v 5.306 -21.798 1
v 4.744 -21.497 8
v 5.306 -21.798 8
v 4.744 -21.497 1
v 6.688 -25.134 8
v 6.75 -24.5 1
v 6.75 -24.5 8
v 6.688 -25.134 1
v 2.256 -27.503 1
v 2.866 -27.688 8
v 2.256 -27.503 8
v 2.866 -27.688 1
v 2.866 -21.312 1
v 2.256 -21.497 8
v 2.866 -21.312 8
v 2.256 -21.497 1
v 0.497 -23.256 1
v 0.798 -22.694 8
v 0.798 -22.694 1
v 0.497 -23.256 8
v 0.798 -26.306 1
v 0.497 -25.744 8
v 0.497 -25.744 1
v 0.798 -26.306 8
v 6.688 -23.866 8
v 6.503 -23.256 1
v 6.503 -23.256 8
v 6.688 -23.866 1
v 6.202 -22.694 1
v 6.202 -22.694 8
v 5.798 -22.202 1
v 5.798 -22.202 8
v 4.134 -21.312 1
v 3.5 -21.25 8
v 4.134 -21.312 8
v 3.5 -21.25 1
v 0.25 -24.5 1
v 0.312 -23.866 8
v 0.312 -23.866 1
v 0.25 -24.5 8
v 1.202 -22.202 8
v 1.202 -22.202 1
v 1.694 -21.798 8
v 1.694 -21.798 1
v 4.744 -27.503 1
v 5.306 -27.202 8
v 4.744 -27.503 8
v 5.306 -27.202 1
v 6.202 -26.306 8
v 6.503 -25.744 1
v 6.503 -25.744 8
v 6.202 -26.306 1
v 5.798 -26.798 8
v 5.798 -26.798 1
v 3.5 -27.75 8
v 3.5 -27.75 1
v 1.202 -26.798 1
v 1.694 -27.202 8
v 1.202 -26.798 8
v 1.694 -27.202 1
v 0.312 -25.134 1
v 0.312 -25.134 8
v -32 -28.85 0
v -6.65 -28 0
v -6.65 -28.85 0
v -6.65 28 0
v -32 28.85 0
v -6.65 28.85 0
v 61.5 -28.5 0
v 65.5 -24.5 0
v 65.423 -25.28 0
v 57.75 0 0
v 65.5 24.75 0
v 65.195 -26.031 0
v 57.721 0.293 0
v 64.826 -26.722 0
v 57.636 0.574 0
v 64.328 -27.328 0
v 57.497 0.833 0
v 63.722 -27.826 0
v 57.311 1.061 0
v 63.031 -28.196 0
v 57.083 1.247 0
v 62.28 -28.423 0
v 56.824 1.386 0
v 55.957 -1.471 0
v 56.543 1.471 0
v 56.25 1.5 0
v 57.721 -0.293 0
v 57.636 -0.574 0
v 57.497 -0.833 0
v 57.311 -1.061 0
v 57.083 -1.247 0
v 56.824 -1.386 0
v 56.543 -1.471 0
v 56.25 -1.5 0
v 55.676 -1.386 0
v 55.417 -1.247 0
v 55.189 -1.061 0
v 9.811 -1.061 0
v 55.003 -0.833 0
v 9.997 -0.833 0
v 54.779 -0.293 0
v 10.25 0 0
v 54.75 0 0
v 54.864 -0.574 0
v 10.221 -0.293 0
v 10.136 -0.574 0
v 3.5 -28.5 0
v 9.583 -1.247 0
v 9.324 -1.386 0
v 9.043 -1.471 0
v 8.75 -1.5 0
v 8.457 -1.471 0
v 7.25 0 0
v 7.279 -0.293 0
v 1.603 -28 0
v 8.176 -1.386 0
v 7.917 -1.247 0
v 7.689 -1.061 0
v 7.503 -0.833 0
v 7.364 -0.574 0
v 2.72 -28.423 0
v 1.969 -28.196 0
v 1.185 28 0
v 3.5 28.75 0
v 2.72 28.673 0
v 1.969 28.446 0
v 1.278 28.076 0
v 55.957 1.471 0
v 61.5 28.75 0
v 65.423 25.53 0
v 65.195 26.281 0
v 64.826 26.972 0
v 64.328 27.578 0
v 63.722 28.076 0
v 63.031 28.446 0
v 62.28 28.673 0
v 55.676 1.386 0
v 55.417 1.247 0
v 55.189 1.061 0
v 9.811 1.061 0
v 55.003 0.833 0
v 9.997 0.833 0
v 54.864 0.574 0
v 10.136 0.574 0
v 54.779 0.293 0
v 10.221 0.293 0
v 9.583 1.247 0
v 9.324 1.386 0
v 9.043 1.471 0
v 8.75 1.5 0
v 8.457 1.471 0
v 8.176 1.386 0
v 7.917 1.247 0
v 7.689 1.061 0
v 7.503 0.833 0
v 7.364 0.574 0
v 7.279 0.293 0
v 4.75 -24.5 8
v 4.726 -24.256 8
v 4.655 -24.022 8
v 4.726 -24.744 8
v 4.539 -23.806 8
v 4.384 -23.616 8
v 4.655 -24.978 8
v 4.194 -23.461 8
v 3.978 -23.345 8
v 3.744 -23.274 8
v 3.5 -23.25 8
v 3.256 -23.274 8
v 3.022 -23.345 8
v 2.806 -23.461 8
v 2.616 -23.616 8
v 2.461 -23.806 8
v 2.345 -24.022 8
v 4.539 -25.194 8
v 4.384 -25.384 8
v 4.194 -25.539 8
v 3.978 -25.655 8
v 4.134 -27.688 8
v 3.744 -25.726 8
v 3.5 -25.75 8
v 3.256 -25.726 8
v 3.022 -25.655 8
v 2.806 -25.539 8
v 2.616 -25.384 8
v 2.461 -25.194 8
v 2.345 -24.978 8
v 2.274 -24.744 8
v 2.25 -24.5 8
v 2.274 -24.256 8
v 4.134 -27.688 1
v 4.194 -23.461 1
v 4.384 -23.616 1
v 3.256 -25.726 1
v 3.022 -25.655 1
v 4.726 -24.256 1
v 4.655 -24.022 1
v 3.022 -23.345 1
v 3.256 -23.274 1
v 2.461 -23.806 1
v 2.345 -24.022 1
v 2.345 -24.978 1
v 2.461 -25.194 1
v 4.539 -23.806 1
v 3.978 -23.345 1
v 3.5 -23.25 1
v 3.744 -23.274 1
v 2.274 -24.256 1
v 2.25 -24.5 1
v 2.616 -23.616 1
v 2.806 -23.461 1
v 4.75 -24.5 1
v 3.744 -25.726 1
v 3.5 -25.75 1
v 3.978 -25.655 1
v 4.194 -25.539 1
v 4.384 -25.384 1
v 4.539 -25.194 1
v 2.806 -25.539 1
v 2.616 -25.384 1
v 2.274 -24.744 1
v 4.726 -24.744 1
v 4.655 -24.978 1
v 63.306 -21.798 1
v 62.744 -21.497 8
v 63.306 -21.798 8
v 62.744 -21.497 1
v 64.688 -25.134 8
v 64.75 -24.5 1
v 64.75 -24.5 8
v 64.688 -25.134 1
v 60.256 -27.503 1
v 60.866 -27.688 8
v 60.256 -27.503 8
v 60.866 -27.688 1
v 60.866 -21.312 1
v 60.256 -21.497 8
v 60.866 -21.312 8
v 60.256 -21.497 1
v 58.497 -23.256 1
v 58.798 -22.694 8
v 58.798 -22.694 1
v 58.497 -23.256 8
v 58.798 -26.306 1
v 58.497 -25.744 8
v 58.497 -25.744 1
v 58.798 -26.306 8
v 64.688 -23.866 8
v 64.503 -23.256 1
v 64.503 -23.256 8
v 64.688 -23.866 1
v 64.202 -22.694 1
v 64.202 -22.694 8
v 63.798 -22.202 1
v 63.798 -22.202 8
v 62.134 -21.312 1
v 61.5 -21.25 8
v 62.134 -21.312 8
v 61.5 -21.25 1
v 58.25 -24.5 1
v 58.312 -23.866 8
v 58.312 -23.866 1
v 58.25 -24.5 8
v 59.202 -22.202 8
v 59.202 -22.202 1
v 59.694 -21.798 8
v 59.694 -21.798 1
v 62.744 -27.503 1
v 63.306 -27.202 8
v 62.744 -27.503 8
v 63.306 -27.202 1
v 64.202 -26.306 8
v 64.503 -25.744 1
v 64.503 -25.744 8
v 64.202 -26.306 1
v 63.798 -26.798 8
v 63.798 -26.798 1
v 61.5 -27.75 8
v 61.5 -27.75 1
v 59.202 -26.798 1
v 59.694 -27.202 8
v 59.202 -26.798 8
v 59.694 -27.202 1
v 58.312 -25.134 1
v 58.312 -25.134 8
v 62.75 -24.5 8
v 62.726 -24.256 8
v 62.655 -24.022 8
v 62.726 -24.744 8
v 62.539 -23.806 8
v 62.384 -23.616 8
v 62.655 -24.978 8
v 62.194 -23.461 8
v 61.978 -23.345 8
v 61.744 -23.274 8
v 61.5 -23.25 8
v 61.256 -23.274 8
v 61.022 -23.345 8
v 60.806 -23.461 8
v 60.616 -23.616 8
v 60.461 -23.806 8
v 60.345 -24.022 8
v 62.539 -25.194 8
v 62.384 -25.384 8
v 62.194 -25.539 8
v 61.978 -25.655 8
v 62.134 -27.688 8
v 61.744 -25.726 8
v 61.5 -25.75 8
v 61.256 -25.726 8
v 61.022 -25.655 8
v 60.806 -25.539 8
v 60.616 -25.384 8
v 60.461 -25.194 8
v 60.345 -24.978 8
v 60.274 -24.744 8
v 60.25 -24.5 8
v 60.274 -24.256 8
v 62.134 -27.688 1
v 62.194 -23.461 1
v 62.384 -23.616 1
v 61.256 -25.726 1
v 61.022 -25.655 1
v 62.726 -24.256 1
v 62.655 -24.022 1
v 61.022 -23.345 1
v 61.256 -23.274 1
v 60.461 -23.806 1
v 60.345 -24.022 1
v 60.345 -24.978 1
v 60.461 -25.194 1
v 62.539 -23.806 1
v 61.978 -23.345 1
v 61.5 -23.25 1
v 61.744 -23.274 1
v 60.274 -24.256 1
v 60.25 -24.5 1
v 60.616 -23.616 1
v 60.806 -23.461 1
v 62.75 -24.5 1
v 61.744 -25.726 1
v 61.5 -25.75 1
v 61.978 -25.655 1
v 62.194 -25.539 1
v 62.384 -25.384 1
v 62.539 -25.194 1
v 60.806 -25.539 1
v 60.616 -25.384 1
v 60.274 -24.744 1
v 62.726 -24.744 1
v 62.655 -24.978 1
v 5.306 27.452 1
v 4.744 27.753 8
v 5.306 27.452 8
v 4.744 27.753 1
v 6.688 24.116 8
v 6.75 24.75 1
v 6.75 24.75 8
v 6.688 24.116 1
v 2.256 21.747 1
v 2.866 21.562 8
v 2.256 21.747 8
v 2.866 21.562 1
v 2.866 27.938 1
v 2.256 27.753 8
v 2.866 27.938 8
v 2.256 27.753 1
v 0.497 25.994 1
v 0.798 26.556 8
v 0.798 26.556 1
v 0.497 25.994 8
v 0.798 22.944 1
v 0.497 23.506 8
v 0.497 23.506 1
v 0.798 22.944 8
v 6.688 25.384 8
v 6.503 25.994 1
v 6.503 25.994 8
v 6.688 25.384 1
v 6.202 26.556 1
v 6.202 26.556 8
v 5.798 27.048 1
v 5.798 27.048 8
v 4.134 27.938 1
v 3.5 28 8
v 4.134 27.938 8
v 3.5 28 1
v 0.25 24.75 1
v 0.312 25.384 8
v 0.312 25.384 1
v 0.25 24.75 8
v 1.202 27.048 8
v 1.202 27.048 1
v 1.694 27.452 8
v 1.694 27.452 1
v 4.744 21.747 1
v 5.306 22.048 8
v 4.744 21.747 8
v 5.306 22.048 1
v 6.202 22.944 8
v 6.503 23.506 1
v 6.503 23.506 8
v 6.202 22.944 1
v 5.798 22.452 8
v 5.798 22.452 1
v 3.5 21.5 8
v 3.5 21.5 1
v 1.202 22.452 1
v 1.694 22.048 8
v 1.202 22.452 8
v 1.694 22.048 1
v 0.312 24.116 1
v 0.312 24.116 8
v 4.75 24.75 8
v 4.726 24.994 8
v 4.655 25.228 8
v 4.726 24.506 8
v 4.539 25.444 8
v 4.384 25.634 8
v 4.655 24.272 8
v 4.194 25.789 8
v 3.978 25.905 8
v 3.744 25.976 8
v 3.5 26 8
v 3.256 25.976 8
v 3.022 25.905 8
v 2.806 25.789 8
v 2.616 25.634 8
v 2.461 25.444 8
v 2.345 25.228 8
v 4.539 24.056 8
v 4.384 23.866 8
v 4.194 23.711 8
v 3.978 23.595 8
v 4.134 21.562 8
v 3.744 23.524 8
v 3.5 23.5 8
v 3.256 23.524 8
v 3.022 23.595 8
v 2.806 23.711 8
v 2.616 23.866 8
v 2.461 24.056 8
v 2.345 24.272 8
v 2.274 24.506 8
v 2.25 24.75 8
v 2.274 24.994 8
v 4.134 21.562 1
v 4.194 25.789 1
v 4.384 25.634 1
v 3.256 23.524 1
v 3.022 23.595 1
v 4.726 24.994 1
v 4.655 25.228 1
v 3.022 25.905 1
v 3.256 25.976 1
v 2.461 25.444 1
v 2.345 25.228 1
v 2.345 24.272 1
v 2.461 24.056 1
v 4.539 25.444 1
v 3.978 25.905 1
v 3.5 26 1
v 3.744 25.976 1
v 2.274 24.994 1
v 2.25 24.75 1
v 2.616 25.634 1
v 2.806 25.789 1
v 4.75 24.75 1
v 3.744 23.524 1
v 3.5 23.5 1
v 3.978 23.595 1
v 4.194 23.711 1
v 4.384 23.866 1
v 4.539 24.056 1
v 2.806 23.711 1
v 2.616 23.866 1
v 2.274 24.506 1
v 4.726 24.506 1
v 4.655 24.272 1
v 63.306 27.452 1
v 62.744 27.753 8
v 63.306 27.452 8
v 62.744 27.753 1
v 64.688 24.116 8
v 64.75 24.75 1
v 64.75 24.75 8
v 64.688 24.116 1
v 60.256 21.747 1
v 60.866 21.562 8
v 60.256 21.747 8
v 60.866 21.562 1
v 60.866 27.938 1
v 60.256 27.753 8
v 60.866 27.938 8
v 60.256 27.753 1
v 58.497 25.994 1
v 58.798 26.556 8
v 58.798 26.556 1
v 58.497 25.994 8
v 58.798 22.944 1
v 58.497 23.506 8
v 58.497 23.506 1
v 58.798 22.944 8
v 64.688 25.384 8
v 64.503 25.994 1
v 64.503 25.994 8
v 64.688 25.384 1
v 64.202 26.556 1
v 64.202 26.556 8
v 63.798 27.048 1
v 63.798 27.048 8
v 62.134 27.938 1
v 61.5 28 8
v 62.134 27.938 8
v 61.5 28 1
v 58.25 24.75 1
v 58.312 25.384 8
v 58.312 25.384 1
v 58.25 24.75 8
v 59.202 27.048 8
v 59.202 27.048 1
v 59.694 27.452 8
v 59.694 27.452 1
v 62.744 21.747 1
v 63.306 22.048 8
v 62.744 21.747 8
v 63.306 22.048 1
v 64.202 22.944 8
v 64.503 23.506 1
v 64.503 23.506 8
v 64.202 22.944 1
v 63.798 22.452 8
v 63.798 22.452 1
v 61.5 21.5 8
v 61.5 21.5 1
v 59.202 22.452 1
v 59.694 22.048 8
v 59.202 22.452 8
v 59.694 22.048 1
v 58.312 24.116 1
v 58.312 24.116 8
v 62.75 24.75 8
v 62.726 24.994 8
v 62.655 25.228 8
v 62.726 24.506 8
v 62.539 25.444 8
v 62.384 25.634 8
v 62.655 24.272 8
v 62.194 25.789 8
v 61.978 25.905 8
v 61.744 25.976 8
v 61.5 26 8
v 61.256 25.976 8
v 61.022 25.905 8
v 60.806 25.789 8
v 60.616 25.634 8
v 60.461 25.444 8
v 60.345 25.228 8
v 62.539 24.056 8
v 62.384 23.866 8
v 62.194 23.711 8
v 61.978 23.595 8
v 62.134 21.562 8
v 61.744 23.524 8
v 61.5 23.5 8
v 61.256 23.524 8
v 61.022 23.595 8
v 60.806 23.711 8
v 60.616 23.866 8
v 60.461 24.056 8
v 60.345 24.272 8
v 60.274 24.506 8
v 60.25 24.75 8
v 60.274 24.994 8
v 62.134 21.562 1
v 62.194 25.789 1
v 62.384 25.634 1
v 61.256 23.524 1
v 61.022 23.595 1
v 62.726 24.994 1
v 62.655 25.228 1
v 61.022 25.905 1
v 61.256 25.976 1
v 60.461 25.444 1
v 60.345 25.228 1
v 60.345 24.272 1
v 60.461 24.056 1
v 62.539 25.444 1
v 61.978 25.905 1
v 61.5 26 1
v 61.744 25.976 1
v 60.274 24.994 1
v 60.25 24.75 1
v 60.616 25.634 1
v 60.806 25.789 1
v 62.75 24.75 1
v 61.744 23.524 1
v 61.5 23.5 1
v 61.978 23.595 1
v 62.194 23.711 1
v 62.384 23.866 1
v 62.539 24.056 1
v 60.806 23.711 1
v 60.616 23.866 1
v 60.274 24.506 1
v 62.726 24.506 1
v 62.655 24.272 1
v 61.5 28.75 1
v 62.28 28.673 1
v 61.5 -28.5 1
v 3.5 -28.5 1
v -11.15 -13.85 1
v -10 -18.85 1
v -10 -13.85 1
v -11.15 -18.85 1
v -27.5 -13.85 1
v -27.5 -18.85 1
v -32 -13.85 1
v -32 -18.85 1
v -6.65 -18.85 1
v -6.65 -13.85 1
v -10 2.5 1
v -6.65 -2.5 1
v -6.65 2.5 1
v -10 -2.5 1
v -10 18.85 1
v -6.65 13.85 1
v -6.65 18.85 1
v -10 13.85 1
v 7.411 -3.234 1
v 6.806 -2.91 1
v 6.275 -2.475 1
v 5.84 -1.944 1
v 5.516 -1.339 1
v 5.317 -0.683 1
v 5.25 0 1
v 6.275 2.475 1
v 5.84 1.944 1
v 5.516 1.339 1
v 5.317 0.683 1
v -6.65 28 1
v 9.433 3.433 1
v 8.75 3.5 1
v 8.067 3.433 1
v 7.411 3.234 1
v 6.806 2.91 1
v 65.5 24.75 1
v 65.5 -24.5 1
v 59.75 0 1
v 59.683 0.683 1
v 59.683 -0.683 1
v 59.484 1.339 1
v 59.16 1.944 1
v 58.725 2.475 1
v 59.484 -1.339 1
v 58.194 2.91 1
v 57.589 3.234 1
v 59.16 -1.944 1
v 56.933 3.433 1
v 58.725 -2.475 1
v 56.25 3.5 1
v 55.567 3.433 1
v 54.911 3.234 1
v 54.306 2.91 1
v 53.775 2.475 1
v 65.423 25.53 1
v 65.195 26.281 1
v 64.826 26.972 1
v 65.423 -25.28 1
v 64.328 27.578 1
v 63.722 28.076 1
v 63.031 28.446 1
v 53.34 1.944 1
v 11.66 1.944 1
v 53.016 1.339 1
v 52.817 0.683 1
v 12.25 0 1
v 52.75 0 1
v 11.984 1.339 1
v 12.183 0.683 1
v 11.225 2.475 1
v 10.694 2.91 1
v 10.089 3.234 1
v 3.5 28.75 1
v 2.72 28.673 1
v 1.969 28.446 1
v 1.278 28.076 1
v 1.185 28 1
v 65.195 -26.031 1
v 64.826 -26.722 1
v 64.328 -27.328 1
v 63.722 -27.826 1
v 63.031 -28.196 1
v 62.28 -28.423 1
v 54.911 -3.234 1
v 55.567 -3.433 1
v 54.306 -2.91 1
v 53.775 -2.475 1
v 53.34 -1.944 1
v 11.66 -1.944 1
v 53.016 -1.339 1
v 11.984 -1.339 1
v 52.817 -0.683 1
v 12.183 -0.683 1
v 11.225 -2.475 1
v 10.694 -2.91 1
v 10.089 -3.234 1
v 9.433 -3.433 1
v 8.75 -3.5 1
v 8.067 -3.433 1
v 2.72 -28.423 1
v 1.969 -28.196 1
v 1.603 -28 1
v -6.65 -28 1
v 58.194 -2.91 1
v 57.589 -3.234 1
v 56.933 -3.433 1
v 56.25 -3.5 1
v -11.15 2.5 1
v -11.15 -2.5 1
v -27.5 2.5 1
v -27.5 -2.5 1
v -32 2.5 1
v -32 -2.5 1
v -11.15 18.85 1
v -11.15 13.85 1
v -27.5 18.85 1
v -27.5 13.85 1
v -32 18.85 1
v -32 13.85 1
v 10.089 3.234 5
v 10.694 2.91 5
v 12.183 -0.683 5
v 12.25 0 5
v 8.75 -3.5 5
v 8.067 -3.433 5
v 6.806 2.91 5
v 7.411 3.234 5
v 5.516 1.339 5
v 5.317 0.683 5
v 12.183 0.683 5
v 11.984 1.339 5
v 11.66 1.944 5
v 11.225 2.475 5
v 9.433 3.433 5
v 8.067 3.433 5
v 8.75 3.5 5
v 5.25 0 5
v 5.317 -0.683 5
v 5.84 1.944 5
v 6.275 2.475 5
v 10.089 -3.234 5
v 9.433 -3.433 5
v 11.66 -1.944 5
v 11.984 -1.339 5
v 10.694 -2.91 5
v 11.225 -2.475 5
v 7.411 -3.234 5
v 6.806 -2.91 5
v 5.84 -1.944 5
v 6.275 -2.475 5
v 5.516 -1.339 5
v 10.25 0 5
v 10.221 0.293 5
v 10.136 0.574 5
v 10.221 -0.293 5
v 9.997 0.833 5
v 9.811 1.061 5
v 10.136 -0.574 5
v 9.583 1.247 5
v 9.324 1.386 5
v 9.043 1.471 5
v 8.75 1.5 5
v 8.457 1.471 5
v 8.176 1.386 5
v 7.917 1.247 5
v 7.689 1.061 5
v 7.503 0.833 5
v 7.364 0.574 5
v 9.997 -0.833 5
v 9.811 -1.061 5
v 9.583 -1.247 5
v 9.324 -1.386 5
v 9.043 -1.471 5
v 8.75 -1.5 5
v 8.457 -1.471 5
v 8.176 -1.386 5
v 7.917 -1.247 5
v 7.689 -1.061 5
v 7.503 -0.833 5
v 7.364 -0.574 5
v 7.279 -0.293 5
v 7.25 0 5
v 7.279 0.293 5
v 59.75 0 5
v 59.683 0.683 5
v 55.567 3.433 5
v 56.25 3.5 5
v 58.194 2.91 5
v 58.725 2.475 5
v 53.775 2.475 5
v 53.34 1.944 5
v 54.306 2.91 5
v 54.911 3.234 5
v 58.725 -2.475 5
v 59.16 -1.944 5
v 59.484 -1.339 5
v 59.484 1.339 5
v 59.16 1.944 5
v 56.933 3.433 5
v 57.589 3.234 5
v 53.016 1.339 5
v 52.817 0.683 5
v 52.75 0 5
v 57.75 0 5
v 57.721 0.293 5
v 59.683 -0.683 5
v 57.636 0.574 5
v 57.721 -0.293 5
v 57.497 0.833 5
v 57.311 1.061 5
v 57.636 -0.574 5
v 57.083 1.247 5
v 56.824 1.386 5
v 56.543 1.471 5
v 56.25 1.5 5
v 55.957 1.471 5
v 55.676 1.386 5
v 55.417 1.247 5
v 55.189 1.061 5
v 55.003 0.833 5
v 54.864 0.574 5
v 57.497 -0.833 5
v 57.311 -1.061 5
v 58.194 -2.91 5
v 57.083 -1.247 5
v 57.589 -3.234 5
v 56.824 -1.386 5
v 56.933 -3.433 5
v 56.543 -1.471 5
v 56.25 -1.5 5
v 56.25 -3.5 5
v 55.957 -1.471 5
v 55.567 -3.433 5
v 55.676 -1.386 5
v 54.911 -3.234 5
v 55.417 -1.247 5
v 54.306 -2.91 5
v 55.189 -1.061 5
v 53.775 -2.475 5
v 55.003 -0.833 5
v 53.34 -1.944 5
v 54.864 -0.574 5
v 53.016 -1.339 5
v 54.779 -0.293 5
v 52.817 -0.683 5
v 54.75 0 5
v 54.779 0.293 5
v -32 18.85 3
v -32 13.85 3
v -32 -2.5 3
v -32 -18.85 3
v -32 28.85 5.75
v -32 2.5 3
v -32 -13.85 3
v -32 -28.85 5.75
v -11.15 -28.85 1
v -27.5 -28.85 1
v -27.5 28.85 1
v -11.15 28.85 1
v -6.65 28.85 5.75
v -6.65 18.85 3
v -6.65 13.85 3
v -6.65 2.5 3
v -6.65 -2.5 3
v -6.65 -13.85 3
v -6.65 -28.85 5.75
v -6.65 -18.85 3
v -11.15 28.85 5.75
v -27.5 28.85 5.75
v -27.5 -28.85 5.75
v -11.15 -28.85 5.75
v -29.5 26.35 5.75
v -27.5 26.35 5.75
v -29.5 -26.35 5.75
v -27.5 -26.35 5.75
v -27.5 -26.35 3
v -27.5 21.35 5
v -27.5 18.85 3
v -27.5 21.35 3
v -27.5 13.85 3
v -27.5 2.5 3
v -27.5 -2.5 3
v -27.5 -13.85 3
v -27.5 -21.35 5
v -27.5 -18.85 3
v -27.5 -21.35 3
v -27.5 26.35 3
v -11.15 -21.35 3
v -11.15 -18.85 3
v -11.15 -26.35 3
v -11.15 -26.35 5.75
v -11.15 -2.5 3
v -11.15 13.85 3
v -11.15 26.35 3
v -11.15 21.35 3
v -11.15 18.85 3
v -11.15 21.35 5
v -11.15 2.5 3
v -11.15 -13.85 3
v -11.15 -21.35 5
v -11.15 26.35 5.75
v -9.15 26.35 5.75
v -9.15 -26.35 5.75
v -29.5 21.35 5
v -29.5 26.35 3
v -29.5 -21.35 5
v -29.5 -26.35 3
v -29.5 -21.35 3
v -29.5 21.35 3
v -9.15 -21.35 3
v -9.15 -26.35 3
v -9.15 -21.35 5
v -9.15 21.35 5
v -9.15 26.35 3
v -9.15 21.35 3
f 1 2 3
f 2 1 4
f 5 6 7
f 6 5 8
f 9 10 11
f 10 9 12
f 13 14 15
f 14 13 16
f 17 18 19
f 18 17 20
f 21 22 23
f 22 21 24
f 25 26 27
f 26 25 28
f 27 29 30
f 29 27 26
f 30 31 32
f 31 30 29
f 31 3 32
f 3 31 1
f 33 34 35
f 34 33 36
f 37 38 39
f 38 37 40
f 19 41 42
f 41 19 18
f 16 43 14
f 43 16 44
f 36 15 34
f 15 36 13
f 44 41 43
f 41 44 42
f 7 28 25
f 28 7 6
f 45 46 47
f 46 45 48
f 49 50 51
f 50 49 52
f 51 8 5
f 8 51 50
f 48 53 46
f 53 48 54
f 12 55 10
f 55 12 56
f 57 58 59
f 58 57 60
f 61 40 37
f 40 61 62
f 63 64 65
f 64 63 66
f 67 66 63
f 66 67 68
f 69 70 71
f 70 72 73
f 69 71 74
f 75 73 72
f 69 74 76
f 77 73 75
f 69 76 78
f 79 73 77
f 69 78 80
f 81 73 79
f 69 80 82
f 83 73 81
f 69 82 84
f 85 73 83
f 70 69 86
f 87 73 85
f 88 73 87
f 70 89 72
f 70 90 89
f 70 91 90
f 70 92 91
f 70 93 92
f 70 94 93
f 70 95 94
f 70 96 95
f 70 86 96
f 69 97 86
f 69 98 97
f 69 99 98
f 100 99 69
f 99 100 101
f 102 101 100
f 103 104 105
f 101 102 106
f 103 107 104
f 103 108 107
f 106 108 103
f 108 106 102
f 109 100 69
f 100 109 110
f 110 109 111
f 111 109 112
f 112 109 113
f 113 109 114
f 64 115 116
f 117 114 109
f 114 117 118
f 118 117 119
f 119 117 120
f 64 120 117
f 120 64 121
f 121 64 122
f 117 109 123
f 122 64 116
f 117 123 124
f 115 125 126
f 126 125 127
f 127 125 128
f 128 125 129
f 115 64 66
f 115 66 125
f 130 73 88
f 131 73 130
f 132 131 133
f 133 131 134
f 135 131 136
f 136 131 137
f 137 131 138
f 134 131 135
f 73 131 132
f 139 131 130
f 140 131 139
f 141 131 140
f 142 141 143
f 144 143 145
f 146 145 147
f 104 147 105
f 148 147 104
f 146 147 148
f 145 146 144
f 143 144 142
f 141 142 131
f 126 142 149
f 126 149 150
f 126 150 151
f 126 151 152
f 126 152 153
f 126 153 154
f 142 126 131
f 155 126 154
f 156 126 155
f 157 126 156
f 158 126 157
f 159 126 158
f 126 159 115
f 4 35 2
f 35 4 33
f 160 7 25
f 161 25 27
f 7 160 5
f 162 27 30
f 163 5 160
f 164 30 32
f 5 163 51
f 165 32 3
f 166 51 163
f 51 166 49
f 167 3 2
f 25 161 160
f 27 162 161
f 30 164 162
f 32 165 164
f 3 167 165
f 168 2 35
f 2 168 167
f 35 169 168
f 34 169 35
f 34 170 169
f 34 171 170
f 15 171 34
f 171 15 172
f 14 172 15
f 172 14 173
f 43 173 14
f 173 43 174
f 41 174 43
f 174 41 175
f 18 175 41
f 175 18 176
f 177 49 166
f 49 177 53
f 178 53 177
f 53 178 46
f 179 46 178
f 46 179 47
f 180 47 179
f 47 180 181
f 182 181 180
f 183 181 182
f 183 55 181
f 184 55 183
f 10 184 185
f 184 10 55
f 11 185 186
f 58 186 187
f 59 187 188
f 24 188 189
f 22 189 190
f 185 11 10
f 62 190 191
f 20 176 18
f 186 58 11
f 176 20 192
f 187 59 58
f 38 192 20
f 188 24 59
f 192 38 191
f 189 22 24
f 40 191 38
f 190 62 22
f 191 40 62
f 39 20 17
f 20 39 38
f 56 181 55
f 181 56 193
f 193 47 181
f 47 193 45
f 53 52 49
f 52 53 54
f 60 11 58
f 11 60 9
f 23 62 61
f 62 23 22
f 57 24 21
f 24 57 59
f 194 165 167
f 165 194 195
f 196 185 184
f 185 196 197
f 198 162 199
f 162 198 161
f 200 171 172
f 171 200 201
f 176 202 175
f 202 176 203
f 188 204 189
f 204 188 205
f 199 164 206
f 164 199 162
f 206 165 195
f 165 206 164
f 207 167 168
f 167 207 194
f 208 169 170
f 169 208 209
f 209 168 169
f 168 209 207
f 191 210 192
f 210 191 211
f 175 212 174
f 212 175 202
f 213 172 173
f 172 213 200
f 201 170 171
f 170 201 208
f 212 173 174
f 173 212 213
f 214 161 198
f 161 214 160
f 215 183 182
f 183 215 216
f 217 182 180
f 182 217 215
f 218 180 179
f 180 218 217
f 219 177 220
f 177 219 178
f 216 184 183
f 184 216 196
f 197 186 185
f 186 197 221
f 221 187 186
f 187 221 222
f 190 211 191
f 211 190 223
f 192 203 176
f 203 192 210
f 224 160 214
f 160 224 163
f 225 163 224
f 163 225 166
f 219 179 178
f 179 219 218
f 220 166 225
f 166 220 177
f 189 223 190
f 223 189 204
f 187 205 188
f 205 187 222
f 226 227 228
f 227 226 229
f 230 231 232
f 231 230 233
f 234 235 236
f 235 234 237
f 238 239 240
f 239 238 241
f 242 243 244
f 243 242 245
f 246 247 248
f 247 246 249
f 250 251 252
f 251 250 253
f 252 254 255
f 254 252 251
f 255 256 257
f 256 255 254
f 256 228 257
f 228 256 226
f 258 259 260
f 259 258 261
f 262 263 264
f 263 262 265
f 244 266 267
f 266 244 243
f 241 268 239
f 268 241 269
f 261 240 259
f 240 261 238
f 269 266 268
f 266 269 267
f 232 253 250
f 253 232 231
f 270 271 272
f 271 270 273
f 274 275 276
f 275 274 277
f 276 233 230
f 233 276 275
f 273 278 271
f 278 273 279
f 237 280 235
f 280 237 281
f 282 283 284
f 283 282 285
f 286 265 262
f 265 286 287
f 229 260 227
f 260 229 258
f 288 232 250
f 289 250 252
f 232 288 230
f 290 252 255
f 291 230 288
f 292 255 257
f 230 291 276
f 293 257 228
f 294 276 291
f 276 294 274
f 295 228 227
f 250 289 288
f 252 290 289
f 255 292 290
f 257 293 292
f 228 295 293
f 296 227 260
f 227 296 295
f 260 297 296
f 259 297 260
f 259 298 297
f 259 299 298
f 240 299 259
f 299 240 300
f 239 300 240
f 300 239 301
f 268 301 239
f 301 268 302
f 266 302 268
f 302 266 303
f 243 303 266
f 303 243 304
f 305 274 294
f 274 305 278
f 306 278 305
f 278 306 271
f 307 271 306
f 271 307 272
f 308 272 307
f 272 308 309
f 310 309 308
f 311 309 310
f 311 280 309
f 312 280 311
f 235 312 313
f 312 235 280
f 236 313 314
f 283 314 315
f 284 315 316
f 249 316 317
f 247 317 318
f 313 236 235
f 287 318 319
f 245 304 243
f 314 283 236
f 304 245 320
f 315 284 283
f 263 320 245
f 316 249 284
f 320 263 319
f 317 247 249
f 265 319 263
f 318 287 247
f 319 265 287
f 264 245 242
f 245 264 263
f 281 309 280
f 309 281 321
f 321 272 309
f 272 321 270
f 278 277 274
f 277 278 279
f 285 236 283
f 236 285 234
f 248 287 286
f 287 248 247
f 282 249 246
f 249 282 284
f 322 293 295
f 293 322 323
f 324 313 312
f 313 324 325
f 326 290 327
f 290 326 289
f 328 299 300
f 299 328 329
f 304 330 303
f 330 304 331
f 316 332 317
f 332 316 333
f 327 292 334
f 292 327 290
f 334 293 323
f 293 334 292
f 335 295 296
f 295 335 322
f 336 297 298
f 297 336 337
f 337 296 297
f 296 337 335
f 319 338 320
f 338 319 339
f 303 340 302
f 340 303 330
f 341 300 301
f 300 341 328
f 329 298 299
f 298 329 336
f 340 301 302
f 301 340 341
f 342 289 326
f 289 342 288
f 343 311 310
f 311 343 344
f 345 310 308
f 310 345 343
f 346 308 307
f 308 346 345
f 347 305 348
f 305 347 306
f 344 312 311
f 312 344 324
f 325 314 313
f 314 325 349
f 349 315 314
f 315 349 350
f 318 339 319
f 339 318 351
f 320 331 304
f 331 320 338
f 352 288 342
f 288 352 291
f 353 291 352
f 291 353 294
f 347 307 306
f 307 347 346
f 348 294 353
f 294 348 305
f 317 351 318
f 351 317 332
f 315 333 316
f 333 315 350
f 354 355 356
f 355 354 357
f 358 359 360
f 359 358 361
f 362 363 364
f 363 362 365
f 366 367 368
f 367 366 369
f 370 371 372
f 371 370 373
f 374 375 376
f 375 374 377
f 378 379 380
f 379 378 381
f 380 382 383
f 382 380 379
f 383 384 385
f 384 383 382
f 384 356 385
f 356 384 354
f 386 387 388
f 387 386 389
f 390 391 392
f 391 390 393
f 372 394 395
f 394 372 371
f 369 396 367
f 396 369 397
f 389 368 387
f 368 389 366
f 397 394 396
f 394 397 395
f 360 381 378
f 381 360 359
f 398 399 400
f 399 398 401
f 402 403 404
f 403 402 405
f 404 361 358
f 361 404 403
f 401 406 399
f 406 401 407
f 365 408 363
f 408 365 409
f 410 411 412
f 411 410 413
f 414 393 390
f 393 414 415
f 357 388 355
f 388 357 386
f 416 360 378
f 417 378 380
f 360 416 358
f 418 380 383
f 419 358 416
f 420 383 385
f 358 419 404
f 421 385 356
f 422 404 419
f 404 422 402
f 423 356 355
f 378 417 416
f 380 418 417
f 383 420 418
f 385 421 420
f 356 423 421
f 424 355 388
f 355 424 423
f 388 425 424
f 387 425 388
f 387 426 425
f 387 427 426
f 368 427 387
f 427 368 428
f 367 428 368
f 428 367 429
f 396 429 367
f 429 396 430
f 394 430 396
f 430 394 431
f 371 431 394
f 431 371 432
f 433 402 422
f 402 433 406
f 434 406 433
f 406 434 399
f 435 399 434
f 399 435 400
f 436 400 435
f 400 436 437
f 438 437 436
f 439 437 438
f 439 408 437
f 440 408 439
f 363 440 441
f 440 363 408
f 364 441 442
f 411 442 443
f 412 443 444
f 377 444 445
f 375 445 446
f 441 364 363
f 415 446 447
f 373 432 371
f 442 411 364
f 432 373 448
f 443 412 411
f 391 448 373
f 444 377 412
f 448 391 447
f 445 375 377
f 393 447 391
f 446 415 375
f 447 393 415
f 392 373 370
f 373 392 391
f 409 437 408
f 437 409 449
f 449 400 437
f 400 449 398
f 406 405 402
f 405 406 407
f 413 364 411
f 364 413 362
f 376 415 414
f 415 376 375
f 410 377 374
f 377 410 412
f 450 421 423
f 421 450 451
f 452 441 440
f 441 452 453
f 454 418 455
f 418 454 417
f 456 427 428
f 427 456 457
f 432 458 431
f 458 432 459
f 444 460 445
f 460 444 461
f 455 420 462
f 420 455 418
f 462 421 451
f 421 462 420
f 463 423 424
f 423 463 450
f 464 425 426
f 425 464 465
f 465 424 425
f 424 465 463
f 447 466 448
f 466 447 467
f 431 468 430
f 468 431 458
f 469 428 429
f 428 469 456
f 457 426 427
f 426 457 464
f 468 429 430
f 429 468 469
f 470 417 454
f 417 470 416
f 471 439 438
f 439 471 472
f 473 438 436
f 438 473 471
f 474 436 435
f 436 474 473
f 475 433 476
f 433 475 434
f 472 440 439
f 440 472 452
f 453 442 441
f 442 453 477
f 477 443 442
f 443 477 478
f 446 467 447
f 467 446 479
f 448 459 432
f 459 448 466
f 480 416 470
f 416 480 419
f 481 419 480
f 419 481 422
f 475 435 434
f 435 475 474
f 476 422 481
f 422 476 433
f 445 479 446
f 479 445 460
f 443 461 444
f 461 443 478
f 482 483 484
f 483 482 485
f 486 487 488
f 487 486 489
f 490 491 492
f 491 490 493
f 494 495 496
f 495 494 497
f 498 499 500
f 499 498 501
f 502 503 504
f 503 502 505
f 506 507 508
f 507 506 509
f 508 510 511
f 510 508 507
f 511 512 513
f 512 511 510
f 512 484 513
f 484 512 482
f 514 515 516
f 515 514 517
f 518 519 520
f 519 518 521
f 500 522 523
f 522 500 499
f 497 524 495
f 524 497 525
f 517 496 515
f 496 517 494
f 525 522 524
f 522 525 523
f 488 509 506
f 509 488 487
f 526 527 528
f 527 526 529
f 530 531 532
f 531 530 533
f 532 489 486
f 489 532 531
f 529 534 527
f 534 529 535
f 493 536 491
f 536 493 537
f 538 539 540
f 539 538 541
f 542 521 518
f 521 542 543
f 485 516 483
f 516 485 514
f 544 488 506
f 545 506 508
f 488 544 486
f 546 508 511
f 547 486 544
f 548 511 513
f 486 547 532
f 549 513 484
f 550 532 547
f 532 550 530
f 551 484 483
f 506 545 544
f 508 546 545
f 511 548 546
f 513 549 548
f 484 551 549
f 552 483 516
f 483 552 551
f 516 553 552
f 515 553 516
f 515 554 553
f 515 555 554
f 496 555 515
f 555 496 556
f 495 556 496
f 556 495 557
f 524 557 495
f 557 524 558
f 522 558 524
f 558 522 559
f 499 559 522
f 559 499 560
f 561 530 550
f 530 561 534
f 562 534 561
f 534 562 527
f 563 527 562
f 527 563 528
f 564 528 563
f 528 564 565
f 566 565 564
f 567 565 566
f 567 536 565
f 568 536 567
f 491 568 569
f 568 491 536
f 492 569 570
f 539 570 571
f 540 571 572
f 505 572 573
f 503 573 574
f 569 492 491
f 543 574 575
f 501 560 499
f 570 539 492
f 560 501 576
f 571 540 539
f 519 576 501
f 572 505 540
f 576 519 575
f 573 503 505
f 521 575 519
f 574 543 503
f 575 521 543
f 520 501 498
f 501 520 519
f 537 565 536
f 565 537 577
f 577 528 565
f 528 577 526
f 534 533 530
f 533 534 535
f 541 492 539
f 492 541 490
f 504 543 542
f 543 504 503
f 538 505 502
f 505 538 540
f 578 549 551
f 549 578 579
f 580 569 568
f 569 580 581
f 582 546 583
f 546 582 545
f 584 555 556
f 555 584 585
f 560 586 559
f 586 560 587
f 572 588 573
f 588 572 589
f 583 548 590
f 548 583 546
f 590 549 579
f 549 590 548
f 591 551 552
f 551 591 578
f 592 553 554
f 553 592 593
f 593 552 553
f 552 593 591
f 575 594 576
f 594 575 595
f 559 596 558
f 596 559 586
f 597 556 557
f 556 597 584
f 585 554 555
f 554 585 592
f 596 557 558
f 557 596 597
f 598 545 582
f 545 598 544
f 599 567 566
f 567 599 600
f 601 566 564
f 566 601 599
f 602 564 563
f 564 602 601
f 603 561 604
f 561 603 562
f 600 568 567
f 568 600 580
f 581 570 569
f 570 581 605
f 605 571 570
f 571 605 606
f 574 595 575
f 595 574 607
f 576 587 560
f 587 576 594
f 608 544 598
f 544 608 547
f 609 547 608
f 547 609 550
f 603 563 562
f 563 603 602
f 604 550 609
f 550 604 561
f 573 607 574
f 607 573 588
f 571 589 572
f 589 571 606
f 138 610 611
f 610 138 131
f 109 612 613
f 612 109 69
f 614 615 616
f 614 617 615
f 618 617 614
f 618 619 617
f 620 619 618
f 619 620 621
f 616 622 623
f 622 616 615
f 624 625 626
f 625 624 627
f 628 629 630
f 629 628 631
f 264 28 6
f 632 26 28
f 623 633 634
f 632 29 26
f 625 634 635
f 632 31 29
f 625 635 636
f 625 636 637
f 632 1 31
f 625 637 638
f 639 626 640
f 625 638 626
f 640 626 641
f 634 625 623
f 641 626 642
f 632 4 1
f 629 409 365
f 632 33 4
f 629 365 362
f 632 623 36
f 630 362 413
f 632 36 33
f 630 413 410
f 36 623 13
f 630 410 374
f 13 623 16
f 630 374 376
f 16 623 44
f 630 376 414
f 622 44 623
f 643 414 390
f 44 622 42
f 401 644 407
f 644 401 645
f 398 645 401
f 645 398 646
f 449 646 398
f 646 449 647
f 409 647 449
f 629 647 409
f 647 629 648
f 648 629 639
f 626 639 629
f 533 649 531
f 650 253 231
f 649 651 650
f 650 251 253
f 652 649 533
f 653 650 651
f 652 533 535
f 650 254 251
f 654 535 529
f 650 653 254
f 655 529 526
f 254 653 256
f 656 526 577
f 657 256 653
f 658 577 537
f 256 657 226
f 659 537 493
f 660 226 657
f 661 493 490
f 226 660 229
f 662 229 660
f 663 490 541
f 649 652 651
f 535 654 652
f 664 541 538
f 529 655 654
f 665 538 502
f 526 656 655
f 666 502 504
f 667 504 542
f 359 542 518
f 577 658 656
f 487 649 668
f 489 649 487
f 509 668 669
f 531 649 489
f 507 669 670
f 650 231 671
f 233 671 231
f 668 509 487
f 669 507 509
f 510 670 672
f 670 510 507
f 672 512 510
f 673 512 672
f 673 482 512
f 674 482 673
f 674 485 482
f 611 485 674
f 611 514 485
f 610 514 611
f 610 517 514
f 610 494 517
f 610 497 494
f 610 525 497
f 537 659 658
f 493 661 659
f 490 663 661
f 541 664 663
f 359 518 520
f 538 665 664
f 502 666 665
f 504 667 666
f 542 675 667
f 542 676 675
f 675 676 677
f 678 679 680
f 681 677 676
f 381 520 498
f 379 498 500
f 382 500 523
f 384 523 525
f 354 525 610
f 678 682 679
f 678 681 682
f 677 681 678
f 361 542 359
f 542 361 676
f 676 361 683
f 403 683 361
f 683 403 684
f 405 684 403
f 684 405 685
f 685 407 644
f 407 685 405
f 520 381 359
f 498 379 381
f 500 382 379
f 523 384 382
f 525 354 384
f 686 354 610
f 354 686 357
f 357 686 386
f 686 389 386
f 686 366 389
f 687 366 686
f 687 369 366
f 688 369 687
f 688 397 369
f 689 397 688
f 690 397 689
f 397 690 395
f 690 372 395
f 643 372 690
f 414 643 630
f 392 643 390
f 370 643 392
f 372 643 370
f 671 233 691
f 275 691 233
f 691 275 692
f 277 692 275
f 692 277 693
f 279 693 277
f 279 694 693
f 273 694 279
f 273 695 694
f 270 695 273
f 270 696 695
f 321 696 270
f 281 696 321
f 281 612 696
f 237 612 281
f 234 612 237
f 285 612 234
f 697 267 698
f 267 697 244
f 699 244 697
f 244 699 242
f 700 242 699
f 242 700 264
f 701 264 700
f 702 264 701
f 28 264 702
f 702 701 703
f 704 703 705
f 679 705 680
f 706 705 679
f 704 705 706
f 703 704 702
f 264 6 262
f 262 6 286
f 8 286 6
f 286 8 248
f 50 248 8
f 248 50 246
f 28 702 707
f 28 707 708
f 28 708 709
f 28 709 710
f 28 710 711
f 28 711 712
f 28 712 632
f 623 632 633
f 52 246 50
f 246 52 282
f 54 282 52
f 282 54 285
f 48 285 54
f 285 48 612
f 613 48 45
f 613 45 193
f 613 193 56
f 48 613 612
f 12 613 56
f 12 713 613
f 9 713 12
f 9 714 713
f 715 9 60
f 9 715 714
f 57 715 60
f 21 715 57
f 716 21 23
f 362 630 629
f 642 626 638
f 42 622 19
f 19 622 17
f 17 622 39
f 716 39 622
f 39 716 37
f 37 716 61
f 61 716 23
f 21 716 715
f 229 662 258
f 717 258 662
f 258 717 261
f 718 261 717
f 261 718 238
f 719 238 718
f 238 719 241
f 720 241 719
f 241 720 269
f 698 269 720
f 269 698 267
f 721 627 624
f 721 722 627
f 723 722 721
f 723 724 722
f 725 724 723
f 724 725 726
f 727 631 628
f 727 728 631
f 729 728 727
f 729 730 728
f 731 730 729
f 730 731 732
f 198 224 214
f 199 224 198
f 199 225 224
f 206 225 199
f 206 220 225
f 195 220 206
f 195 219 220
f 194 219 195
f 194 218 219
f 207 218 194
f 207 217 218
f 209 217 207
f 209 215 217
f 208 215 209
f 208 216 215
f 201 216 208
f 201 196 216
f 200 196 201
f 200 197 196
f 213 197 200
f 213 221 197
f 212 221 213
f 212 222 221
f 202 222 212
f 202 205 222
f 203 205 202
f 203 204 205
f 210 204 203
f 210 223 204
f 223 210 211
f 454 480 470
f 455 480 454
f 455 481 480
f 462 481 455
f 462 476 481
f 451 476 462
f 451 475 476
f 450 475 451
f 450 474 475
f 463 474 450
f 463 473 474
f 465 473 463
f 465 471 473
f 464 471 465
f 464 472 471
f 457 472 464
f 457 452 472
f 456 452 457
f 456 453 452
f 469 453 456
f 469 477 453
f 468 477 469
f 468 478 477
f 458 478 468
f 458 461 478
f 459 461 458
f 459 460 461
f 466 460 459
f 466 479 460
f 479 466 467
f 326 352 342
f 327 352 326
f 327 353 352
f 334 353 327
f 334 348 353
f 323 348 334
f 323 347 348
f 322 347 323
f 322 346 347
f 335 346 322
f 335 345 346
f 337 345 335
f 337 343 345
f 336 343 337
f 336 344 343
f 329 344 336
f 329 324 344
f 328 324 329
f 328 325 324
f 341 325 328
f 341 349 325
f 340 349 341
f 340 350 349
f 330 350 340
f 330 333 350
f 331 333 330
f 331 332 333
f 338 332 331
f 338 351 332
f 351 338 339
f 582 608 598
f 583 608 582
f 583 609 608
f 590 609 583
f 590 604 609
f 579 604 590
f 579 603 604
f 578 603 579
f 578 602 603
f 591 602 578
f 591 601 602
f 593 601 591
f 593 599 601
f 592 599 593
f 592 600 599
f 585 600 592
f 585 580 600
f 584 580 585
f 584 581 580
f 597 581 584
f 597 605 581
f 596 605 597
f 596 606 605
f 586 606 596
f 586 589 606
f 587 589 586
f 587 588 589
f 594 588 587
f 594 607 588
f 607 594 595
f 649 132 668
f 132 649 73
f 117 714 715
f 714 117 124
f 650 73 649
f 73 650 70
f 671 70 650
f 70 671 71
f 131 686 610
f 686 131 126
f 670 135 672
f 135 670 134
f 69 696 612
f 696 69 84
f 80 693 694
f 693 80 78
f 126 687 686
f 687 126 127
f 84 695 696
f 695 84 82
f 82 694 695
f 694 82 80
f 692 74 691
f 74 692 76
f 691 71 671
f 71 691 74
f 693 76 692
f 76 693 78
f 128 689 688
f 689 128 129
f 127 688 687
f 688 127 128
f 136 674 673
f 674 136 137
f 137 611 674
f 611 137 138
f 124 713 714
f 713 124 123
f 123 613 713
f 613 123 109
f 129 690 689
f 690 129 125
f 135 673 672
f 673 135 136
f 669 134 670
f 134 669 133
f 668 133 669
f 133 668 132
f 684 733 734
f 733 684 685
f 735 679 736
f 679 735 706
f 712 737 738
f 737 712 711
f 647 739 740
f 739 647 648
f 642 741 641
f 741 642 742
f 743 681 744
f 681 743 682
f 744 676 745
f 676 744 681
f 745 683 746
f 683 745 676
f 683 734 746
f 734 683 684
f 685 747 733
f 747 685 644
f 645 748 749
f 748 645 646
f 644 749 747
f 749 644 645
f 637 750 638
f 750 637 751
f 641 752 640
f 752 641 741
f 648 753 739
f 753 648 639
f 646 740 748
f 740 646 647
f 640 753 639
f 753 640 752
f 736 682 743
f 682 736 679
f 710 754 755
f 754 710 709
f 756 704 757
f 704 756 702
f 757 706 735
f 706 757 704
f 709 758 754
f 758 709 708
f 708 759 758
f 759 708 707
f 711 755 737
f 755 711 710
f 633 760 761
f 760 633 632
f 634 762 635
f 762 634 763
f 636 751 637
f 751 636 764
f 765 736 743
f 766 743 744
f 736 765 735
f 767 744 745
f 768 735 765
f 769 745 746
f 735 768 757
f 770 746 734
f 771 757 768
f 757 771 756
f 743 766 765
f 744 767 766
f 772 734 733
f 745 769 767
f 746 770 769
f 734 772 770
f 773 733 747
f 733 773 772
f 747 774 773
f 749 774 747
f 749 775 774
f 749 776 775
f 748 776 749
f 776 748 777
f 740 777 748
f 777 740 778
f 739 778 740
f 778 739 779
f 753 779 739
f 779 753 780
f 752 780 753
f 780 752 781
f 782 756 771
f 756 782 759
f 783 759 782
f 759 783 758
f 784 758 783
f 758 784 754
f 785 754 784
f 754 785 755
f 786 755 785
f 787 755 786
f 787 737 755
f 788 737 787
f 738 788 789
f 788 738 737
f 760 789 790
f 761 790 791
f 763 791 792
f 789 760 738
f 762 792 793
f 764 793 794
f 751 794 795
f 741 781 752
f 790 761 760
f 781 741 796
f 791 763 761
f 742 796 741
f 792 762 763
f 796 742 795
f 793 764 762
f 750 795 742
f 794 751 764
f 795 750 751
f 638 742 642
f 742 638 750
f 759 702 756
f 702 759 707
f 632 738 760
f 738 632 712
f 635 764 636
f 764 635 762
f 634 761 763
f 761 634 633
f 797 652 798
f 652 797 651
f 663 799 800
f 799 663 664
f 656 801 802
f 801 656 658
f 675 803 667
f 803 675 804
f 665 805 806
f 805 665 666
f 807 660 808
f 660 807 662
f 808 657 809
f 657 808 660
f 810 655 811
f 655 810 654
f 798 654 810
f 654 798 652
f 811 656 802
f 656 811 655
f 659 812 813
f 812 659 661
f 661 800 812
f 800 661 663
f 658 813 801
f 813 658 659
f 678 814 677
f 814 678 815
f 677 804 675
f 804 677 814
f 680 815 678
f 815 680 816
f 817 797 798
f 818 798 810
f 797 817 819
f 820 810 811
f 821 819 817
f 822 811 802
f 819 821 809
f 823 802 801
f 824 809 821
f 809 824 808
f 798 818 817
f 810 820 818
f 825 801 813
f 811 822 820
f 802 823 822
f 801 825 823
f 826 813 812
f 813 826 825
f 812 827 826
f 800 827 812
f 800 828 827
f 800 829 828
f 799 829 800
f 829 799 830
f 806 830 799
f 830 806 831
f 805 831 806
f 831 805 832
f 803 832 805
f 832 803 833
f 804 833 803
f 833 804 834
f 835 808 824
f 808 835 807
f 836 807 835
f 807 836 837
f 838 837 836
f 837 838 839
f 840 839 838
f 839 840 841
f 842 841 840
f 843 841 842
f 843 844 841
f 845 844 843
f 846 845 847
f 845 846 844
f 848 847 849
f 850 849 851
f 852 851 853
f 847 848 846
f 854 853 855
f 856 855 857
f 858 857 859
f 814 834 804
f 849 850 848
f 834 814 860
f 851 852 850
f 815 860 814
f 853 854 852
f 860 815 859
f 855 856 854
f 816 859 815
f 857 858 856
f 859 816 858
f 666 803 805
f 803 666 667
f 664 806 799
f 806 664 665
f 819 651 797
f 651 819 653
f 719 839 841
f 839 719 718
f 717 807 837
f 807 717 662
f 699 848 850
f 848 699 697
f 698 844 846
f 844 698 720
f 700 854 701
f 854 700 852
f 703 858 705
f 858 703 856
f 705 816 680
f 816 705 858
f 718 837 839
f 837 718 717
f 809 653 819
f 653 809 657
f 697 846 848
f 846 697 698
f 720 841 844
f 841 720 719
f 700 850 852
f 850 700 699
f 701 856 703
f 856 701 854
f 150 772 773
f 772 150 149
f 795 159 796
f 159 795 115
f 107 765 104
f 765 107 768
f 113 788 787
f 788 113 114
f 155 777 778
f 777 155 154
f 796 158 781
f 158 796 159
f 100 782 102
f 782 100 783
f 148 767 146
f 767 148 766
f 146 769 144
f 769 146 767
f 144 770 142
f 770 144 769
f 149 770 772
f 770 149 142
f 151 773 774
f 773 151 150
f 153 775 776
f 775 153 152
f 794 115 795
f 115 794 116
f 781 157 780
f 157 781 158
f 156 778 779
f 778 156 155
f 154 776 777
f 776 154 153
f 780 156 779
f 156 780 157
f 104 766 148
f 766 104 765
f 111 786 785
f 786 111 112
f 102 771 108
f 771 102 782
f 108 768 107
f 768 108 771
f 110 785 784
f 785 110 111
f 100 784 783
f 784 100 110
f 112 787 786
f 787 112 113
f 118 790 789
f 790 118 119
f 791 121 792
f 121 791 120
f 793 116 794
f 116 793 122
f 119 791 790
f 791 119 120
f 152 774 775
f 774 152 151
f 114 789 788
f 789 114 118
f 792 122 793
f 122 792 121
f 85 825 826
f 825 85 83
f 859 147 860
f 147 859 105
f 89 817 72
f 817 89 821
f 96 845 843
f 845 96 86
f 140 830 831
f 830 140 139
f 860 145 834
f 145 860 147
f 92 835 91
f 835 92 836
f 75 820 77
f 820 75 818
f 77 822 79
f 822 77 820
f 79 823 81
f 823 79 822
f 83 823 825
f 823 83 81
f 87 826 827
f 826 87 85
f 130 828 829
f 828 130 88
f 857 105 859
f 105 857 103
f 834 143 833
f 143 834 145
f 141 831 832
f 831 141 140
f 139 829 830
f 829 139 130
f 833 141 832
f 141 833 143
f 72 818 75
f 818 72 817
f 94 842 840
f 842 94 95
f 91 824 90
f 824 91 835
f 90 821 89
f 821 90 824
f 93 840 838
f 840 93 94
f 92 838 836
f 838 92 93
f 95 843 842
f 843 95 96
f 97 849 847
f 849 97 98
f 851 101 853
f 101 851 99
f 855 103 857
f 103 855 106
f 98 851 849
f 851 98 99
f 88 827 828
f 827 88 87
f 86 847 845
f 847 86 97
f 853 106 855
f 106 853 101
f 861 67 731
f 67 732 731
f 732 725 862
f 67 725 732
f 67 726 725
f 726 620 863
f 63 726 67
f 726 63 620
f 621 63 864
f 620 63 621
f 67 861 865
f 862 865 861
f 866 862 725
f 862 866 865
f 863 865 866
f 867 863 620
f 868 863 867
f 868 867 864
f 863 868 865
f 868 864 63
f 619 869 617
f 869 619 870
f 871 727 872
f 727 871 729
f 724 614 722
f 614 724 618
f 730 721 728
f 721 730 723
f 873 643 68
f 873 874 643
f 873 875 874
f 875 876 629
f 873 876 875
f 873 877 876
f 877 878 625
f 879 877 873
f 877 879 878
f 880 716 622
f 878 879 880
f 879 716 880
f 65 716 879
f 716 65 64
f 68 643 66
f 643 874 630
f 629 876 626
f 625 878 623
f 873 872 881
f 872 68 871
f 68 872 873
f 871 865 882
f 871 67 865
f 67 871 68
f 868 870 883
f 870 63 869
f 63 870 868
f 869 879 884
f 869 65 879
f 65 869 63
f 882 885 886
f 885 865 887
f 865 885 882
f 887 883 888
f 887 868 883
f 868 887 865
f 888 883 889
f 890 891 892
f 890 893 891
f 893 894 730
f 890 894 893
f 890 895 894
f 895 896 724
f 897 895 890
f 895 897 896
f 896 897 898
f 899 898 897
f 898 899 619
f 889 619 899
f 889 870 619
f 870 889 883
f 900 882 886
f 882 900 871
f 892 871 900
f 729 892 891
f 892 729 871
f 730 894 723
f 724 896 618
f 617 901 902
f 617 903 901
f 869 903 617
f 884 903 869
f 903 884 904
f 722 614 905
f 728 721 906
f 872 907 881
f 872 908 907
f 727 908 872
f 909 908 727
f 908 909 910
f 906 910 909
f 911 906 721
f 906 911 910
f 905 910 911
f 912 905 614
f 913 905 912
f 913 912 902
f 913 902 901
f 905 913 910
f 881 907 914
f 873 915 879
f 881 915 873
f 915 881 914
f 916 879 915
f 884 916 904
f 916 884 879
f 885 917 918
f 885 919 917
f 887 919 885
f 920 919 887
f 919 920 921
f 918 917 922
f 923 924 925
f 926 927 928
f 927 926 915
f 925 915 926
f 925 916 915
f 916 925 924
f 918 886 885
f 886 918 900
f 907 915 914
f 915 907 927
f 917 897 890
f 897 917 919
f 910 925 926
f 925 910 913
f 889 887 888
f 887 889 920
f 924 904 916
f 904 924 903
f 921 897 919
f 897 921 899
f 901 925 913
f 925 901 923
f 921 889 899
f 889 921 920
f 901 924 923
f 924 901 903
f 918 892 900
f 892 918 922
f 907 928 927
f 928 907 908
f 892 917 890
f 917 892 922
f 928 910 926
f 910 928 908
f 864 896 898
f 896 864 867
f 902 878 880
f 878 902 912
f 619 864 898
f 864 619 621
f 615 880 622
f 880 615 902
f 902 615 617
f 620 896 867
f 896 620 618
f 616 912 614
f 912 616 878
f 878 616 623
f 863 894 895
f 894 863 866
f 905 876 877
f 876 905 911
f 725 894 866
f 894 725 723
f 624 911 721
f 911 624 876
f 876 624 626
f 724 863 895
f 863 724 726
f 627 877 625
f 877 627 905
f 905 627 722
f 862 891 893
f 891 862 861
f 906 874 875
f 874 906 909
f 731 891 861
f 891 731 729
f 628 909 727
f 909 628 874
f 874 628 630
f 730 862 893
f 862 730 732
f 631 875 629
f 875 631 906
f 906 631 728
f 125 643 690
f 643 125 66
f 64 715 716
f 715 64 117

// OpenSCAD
// Troublemaker v2: Raspberry PI 3 Mount
// https://github.com/macropin/troublemaker

fudge = 0.25;
pad = 0.001;
$fn = 32;

module screw_hole(d=2.5) {
    color("red") cylinder(d=d, h=100, center=true);
}

module stand_off(h=8.0, d=2.5, do=6.5) {
    color("blue") difference() {
        cylinder(d=do, h=h);
        cylinder(d=d, h=100);
    }
}

module raspberrypi_mount(t=1.0) {
    screw_offset=3.5;
    screw_d = 2.5;
    difference() {
        union() {
            hull() {
                translate([screw_offset,screw_offset,0]) cylinder(d=8,h=1);
                translate([screw_offset+58,screw_offset,0]) cylinder(d=8,h=1);
                translate([screw_offset,screw_offset+48+screw_d/2,0]) cylinder(d=8,h=1);
                translate([screw_offset+58,screw_offset+48+screw_d/2,0]) cylinder(d=8,h=1);
            }
            translate([screw_offset,screw_offset,0]) stand_off();
            translate([screw_offset+58,screw_offset,0]) stand_off();
            translate([screw_offset,screw_offset+48+screw_d/2,0]) stand_off();
            translate([screw_offset+58,screw_offset+48+screw_d/2,0]) stand_off();
            
            // main mount
        translate([(85-47.5)/2-10,56/2,0]) cylinder(d=7, h=8-3);
        translate([(85+47.5)/2-10,56/2,0]) cylinder(d=7, h=8-3);
        }
        // main mount
        translate([(85-47.5)/2-10,56/2,0]) screw_hole(d=3);
        translate([(85+47.5)/2-10,56/2,0]) screw_hole(d=3);
    }
}

module converter_mount() {

    w = 20.10+fudge;
    h = 52.45+fudge;
    t = 1.65;
    extra = 5.0;

    difference() {
        union() {
            cube([w+extra, h+extra, 1.0]);
            color("blue") cube([extra/2+2,h+extra,6-fudge]);
            color("blue") translate([(w+extra)-(extra/2+2),0,0]) cube([extra/2+2,h+extra,6-fudge]);
        }
        translate([extra/2,extra/2,5]) color("red") cube([w, h, 1.0]);
        translate([extra/2,extra/2,3]) color("green") cube([w, 5, 5.0]);
        translate([extra/2,h-extra/2,3]) color("green") cube([w, 5, 5.0]);
        translate([0,10,1]) cube([100,5,2]);
        translate([0,h/2,1]) cube([100,5,2]);
        translate([0,h-10,1]) cube([100,5,2]);
    }
}

union() {
    translate([0,-56/2,0]) raspberrypi_mount();
    translate([-32,-(52.45+fudge+5)/2,0]) converter_mount();
    translate([-10,-56/2,0]) cube([15,56,1]);
}

//raspberrypi_mount(t=1.0);
